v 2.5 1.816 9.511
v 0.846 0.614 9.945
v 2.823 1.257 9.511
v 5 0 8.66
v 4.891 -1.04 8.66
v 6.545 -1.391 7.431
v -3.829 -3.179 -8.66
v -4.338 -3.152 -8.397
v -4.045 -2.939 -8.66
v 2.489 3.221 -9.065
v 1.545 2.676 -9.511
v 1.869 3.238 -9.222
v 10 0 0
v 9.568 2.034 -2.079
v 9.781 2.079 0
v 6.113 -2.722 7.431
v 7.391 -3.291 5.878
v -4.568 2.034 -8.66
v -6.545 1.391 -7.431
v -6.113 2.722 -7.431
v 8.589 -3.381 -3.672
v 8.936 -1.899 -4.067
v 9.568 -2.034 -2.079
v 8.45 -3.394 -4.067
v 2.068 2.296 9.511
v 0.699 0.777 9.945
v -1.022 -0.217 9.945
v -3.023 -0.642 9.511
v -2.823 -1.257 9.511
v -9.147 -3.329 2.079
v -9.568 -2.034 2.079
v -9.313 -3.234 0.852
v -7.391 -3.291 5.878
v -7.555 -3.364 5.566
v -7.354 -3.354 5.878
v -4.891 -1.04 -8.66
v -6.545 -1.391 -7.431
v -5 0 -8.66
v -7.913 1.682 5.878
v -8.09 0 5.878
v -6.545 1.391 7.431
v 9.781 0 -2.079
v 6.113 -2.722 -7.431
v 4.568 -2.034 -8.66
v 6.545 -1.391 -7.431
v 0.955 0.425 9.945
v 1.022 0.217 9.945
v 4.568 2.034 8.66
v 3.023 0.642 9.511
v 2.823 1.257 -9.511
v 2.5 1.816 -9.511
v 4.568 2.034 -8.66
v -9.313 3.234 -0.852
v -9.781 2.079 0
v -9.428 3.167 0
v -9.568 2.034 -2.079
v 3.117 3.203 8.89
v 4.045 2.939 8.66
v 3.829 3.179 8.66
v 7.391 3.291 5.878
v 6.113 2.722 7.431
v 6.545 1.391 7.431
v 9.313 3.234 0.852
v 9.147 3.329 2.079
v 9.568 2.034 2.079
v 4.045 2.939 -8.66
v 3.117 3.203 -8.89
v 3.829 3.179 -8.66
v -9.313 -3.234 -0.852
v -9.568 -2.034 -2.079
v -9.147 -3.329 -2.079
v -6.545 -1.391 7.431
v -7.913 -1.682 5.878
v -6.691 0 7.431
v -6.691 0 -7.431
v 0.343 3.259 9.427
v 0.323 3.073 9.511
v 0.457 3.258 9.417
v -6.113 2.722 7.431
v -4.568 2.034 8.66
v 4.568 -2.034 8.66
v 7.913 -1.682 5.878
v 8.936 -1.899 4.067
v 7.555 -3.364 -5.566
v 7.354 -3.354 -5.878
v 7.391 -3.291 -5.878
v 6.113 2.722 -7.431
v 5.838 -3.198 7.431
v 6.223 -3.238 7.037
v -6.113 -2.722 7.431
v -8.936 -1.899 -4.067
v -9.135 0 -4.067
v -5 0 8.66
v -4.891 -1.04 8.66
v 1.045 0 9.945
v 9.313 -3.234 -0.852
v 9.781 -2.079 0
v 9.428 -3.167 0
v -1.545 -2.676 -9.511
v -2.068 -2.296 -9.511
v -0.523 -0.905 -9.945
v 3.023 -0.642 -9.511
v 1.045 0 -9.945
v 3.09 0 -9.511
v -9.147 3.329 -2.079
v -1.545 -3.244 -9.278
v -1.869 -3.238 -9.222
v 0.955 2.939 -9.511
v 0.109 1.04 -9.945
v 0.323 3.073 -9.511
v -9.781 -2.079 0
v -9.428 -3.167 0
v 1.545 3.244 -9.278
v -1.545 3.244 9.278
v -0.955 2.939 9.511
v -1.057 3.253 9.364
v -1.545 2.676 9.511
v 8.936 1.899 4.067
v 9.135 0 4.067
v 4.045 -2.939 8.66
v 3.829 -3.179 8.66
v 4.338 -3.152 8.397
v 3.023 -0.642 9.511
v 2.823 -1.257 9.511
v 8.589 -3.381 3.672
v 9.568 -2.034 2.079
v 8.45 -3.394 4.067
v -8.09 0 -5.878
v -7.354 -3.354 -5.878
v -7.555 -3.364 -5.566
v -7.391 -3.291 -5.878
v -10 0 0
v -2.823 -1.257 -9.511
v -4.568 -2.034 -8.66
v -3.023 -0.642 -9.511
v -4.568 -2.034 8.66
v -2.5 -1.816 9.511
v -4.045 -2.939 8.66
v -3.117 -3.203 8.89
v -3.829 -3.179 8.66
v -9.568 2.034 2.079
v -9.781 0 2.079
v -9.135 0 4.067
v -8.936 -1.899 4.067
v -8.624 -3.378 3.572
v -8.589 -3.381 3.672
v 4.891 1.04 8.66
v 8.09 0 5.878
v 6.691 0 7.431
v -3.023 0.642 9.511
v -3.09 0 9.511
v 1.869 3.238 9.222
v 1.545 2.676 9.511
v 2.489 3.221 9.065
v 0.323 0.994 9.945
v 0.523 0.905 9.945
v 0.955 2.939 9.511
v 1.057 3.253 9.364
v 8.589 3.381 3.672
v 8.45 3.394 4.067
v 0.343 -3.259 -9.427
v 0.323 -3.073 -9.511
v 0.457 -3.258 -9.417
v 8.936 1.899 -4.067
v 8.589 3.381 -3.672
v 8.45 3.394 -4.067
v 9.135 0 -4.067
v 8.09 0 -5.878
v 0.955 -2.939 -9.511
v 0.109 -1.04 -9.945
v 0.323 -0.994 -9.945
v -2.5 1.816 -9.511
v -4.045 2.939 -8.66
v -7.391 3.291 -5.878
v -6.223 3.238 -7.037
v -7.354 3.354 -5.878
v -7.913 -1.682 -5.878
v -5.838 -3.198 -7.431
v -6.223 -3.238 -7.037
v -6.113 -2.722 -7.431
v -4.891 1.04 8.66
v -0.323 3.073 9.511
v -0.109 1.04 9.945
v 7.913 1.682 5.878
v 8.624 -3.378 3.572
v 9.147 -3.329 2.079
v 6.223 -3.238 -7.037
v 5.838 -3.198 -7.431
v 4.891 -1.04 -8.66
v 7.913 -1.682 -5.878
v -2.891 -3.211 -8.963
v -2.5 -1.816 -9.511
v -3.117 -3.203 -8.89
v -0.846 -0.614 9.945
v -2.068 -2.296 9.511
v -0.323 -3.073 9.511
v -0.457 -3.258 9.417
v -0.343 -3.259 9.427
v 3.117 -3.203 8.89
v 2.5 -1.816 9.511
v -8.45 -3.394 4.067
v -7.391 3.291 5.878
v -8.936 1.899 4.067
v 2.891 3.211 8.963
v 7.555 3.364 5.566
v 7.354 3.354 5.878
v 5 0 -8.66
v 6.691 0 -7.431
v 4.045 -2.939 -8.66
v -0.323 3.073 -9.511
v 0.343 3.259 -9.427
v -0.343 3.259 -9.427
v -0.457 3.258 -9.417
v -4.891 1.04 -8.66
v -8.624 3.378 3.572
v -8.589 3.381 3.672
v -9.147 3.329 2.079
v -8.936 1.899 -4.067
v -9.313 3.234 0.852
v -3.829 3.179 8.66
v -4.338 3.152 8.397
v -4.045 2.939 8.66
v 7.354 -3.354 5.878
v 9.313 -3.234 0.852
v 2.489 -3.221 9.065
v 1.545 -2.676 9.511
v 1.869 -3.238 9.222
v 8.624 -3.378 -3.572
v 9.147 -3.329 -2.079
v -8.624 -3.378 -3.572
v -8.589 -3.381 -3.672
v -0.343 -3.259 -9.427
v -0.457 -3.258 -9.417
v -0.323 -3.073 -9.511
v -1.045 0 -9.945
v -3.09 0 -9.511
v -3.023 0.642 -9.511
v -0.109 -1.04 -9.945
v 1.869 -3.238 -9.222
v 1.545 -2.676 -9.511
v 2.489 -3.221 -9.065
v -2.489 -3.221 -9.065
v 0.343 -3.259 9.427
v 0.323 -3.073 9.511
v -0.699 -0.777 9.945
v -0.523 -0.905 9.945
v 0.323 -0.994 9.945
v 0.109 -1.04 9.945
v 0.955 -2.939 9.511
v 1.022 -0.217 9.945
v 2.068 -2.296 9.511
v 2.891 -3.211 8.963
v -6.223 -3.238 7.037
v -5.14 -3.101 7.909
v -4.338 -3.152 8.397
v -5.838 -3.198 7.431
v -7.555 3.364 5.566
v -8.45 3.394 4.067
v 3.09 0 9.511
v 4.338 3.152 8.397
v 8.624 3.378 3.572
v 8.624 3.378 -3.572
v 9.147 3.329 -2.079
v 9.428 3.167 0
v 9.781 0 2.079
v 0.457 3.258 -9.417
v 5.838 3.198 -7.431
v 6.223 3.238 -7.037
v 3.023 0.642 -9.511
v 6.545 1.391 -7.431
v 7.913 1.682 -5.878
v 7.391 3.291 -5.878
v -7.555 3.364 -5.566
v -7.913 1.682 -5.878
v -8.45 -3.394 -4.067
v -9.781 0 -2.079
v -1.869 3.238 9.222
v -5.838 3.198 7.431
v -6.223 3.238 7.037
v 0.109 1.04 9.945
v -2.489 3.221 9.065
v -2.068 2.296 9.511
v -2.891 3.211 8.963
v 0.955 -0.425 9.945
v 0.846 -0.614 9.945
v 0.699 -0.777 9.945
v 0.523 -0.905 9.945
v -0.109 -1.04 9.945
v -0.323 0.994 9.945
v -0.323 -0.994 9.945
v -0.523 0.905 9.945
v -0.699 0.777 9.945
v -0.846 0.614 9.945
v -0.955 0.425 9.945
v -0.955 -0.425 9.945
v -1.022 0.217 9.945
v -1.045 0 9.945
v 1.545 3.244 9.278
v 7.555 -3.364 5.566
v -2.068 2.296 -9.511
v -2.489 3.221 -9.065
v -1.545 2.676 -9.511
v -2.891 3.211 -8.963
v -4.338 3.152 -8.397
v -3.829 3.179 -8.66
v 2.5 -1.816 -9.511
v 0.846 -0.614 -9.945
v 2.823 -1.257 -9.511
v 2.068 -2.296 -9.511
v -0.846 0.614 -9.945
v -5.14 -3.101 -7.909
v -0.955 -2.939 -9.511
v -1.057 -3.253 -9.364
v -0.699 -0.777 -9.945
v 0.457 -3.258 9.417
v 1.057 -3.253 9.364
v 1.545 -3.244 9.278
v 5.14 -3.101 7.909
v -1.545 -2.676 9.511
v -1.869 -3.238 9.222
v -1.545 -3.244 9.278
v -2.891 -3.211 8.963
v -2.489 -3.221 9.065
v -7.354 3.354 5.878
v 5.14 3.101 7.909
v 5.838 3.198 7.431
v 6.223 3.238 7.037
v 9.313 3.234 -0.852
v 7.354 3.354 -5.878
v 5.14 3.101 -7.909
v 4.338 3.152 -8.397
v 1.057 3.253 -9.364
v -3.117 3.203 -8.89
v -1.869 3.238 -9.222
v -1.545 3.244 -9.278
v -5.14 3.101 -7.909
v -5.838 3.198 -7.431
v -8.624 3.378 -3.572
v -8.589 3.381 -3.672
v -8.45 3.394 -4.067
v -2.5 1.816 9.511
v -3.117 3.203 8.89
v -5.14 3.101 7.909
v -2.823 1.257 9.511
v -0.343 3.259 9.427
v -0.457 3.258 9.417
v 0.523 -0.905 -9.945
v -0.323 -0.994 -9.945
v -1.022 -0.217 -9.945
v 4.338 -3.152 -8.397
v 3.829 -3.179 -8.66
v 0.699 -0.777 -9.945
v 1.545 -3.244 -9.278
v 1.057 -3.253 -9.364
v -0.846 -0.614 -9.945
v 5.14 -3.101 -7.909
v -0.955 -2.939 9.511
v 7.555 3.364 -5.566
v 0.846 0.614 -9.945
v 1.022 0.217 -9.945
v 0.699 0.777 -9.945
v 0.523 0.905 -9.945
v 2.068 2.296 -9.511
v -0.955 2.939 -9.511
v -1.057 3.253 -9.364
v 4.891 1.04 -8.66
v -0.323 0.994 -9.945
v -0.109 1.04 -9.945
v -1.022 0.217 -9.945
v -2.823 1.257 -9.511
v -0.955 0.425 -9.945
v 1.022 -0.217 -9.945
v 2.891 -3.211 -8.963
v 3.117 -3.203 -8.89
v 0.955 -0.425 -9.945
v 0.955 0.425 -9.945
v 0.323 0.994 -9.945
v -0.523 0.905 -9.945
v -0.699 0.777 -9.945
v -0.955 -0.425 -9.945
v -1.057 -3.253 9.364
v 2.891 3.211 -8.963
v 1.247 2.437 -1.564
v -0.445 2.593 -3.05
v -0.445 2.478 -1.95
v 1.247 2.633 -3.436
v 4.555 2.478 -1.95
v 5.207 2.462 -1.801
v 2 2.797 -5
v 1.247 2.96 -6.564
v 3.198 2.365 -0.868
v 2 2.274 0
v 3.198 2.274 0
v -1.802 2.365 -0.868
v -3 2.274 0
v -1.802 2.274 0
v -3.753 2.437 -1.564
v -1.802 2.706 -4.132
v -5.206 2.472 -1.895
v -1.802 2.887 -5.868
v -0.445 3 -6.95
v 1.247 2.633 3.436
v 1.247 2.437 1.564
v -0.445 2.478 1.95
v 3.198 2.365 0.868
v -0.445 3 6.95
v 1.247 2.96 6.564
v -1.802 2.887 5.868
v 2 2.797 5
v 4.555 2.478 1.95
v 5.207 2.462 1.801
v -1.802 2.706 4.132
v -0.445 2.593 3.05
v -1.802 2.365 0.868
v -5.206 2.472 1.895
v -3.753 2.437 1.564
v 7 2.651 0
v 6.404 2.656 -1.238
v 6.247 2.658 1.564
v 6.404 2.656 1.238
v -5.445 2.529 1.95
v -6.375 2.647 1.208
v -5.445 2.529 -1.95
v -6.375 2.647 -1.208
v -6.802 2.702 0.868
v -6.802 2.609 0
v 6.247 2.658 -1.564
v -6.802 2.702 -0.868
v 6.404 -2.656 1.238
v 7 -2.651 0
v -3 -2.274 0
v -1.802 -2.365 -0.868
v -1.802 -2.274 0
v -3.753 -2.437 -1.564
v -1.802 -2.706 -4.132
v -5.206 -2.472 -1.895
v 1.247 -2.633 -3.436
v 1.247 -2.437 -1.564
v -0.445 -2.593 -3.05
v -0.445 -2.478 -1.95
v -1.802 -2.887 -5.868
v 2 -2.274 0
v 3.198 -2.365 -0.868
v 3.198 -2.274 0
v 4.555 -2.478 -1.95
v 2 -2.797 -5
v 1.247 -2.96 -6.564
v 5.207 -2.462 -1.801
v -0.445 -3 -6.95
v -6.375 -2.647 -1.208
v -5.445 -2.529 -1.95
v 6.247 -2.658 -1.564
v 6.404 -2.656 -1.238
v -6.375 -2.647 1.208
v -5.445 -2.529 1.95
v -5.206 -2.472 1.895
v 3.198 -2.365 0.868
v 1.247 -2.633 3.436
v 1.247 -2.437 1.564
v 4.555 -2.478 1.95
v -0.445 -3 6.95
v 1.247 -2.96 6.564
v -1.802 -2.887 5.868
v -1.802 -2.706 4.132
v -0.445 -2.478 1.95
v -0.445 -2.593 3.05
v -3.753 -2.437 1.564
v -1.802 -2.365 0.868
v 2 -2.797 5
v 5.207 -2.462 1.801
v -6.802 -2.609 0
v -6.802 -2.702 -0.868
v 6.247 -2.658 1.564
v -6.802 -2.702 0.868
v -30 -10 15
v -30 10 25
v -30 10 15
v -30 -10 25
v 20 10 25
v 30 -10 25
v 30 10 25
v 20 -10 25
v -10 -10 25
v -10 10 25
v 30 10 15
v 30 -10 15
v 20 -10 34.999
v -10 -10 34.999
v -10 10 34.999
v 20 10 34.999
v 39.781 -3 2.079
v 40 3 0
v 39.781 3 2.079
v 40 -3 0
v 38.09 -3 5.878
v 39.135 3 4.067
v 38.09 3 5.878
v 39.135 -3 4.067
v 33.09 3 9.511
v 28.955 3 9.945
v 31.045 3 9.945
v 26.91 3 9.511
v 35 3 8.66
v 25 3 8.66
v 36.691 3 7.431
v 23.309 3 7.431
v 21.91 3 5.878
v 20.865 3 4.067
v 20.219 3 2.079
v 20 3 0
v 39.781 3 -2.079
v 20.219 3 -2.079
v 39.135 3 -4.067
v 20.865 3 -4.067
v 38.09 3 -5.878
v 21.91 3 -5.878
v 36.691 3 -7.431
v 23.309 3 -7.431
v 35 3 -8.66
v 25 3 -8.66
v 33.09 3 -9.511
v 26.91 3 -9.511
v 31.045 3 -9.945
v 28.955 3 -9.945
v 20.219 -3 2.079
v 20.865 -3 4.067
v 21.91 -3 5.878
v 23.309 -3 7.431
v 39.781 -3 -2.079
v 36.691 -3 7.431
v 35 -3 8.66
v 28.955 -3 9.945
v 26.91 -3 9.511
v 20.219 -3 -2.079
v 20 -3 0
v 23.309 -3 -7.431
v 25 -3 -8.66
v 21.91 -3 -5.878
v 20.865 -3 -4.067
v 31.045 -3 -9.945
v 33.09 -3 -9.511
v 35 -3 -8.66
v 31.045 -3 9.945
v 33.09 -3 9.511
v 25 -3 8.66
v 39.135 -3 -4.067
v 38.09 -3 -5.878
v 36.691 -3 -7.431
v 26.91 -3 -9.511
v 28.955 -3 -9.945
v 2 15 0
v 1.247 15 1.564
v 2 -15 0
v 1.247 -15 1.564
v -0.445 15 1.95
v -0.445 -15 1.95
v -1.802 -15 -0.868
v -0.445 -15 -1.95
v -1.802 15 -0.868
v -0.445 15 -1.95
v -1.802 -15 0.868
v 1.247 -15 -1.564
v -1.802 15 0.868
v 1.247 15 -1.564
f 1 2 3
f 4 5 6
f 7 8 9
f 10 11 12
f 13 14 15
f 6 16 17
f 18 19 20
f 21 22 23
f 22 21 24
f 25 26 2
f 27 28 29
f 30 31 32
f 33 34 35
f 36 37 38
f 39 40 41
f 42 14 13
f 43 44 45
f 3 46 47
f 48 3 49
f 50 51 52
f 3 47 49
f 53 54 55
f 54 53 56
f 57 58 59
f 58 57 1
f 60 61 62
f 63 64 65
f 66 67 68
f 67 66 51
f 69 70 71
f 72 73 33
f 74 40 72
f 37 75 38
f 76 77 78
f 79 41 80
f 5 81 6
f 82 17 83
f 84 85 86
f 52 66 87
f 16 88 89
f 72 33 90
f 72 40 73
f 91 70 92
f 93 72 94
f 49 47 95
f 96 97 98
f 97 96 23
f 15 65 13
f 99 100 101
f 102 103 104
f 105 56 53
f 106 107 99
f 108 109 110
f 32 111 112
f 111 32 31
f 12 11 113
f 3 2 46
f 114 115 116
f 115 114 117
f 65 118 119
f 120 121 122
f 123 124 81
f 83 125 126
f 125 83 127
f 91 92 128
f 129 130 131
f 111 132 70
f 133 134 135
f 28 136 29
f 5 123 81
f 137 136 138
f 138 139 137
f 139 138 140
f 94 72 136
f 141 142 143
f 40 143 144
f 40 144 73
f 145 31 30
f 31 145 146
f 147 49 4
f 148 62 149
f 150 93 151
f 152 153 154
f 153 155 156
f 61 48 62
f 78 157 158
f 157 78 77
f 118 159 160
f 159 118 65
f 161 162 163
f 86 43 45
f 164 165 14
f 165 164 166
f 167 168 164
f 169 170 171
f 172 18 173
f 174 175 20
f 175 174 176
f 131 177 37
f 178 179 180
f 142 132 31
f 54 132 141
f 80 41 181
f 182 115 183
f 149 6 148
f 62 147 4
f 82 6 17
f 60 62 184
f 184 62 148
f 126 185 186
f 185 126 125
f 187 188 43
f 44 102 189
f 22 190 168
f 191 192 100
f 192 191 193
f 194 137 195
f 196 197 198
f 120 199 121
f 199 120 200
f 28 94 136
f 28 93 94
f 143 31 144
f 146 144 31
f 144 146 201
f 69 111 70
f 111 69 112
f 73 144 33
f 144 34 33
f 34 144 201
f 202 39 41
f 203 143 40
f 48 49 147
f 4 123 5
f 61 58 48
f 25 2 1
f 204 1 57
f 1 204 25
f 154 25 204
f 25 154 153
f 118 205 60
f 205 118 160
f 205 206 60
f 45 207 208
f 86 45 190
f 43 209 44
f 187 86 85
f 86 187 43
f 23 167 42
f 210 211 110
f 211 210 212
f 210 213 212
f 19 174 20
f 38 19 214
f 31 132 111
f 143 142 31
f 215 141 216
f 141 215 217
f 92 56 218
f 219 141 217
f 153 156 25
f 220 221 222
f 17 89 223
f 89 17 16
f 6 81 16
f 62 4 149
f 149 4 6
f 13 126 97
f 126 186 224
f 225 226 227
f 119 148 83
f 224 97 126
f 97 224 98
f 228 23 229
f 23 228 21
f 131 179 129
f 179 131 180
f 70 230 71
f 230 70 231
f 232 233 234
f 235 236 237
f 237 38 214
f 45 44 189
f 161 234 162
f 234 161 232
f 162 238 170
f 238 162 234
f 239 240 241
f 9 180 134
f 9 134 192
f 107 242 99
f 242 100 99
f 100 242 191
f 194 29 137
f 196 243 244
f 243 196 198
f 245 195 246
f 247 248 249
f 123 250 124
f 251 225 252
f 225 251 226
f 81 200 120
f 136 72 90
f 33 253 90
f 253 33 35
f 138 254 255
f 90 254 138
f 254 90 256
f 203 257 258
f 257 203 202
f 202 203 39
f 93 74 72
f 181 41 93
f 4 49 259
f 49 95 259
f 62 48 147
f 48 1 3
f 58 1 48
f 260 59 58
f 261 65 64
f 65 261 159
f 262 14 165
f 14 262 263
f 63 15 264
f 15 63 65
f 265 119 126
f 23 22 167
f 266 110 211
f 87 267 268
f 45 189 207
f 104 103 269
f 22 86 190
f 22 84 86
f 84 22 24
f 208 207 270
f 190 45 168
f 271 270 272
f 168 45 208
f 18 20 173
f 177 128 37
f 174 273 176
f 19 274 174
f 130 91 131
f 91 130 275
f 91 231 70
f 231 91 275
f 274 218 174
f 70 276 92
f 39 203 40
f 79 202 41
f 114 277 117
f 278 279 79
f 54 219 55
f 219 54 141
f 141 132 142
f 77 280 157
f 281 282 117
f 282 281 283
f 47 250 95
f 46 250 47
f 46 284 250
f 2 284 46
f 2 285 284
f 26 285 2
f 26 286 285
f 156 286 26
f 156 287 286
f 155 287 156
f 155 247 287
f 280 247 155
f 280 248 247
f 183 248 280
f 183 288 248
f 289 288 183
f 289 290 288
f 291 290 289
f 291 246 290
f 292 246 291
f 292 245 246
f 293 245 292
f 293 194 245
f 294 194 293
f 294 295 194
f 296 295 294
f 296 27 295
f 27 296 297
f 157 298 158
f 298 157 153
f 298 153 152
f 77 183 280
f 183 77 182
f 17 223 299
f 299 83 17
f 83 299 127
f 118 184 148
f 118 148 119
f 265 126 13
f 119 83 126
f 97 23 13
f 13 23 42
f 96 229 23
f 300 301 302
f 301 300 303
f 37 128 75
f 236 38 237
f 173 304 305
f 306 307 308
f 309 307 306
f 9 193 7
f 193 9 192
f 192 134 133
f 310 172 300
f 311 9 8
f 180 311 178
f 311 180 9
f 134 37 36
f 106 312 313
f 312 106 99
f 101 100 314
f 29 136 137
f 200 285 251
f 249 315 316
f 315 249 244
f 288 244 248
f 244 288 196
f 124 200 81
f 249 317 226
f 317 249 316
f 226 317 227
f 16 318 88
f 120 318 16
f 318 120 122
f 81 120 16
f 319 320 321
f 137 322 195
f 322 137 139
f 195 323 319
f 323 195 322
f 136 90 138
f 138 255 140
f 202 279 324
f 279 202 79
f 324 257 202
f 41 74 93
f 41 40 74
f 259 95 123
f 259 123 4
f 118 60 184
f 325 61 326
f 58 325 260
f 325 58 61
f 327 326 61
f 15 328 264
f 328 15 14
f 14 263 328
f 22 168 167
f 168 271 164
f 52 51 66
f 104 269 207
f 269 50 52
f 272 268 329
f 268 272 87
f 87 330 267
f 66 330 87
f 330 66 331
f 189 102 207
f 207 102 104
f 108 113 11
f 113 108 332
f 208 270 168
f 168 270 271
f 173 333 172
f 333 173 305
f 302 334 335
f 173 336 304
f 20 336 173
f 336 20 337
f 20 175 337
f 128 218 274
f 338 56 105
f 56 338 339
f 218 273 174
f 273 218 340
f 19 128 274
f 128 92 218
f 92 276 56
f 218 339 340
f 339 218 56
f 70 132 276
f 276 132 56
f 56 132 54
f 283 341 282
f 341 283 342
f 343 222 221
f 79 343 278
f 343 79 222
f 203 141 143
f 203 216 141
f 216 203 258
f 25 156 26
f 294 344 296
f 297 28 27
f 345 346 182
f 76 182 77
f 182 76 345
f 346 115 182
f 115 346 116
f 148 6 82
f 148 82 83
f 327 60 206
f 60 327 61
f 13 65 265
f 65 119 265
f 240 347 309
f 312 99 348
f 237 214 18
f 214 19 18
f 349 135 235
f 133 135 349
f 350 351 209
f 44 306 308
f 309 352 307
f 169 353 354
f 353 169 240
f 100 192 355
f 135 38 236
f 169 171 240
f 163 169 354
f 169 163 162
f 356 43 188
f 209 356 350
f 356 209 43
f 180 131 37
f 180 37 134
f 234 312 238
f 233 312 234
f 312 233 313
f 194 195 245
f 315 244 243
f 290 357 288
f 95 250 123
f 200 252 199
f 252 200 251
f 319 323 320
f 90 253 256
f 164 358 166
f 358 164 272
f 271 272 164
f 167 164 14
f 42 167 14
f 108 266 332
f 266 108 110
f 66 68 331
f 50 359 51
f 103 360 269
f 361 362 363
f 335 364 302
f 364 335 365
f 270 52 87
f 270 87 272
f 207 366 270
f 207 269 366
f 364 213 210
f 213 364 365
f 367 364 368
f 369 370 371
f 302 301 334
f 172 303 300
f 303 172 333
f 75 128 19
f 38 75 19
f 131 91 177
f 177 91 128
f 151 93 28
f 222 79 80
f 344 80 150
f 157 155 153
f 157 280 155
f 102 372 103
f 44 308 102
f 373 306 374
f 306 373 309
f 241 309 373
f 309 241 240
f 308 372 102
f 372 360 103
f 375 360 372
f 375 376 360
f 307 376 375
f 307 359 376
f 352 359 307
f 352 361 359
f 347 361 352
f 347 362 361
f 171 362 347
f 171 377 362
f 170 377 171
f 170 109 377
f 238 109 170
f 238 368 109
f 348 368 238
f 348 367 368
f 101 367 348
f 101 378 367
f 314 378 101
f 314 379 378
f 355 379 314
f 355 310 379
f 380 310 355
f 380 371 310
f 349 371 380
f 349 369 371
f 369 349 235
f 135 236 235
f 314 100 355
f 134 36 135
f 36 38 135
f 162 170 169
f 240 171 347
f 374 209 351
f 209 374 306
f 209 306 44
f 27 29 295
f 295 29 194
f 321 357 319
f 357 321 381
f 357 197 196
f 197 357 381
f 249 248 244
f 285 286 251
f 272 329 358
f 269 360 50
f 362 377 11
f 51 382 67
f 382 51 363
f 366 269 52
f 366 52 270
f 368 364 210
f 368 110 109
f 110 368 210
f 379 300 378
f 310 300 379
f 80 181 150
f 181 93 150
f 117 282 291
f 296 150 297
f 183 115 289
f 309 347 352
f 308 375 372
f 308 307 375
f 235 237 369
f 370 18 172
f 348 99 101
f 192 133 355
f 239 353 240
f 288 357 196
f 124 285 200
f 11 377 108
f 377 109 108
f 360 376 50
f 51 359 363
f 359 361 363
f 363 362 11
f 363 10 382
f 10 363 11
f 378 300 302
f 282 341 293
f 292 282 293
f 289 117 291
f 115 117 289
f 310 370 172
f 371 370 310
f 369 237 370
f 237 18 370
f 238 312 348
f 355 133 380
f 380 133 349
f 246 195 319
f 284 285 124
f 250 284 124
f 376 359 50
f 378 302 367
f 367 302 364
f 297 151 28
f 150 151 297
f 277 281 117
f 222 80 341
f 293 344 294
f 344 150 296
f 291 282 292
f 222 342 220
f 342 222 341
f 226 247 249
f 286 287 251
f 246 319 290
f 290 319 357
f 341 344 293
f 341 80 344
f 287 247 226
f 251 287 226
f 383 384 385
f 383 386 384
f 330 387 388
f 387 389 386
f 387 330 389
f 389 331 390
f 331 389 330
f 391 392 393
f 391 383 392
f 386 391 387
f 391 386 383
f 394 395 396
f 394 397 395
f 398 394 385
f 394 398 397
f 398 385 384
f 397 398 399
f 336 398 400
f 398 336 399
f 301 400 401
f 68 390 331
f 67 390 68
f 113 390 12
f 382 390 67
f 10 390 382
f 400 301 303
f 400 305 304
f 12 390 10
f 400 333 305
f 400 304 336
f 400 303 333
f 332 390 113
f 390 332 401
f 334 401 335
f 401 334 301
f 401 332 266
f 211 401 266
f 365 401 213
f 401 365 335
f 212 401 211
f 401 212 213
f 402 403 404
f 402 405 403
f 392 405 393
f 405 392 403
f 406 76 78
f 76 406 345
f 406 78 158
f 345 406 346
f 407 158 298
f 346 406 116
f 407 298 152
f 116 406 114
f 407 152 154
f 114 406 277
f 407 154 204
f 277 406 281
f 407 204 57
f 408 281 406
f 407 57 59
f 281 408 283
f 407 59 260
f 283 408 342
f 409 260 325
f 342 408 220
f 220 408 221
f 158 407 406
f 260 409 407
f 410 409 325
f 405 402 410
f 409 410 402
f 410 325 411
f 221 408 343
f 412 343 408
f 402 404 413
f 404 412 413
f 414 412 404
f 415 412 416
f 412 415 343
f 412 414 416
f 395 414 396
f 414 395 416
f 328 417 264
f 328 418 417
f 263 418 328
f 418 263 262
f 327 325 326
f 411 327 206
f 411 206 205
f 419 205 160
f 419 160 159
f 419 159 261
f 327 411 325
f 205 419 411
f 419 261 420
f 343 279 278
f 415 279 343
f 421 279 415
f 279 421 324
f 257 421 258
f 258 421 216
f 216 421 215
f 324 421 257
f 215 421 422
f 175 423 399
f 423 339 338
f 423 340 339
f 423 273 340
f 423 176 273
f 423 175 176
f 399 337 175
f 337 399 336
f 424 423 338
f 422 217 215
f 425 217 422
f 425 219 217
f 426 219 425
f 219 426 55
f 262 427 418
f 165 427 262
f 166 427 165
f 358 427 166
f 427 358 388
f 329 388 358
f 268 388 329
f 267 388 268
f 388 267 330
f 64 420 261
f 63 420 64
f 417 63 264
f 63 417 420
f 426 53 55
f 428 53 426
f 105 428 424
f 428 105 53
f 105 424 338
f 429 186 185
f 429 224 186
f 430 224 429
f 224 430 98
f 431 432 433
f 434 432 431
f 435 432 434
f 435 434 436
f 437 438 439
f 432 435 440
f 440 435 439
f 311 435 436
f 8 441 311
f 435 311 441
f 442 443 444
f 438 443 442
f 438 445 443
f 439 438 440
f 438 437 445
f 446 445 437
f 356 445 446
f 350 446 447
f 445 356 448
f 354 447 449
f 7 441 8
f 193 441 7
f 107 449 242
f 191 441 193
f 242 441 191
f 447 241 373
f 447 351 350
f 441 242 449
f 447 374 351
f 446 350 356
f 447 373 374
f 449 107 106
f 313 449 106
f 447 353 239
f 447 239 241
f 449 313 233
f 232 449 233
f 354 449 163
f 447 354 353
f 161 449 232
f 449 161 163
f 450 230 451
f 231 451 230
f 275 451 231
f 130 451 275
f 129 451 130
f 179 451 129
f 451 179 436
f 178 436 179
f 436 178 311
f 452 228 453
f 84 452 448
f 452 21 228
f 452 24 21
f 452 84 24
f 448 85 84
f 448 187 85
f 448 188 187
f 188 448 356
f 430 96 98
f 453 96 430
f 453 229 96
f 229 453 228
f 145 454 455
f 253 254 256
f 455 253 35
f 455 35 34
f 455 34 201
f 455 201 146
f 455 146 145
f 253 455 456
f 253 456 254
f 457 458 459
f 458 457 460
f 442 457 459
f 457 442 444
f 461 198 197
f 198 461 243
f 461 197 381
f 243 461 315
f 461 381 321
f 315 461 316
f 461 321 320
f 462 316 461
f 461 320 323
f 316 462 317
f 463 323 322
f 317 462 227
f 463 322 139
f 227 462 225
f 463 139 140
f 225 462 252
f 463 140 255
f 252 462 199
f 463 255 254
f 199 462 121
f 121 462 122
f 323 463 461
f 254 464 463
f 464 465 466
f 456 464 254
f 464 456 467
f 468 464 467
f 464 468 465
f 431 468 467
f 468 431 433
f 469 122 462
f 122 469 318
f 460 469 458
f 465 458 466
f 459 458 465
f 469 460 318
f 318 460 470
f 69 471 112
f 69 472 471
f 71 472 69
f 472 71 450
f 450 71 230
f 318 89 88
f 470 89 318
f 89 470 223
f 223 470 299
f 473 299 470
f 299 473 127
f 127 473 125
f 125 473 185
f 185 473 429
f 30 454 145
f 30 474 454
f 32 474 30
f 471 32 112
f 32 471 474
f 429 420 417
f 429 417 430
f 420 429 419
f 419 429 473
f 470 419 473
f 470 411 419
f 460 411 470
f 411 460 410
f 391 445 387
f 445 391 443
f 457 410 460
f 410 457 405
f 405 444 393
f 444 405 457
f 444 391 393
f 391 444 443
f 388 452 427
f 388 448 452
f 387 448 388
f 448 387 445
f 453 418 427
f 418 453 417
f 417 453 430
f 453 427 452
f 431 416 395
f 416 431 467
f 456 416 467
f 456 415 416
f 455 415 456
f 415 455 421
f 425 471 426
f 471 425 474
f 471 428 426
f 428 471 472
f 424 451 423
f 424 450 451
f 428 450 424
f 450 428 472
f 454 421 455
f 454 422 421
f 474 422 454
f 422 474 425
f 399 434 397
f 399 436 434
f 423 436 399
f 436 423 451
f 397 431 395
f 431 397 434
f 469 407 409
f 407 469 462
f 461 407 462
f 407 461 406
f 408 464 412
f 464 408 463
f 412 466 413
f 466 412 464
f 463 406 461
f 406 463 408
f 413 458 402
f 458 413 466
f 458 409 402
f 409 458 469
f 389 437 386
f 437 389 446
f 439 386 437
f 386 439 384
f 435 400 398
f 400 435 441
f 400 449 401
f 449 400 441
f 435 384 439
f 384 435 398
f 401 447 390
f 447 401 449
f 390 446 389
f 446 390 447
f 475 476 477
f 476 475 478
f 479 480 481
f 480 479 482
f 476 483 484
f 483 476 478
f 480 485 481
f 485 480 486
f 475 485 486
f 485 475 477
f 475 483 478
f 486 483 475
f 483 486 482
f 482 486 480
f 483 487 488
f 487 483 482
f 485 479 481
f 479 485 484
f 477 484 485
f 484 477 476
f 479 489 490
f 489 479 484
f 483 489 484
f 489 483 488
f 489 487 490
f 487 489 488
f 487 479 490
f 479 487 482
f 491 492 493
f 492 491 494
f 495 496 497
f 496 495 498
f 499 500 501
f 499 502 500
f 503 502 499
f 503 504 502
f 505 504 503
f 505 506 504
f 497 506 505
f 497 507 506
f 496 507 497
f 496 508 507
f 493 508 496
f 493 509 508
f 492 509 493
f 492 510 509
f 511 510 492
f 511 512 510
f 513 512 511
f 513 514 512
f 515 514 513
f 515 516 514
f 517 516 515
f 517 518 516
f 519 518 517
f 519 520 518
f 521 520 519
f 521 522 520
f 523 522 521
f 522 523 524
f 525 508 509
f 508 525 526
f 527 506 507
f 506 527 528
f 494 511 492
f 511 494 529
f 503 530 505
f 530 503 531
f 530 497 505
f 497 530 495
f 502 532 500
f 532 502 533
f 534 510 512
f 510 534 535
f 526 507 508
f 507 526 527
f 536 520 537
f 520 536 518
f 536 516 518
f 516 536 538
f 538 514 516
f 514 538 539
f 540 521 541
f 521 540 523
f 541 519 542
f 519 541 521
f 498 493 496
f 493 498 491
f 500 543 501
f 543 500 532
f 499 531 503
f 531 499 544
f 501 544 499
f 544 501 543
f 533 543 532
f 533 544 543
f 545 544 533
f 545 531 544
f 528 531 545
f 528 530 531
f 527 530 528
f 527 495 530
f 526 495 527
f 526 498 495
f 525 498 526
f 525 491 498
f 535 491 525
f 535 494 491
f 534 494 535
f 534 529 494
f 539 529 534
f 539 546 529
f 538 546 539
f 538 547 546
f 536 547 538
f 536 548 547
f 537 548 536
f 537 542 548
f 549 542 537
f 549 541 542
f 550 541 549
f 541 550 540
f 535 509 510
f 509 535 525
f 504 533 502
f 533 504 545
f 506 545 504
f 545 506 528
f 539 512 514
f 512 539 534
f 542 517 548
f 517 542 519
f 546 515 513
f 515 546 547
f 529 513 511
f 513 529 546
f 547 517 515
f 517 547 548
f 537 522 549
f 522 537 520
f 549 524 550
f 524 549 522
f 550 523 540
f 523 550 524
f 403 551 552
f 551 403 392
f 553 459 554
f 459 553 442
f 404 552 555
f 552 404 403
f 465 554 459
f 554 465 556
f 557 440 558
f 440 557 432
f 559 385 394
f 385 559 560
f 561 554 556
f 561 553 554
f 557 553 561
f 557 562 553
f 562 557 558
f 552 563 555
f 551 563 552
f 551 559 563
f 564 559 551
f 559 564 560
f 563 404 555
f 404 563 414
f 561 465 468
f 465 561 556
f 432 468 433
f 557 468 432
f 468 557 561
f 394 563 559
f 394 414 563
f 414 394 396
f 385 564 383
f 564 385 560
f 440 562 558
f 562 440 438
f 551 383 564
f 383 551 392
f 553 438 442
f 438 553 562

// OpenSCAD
//$fa=1;
//$fs=0.4;

base_height = 10;
top_height = 10;

module simple_wheel(wheel_radius=10, wheel_width=6) {
    rotate([90,0,0])
        cylinder(h=wheel_width,r=wheel_radius,center=true);
    }
translate([30,0,0])
    simple_wheel();

module complex_wheel(wheel_radius=10, side_spheres_radius=50, hub_thickness=4, cylinder_radius=2) {
    cylinder_height=2 * wheel_radius;
    difference() {
        // Wheel sphere
       sphere(r=wheel_radius);
        // Side wheel 1
        translate([0,side_spheres_radius + hub_thickness/2, 0])
            sphere(r=side_spheres_radius);
        // Side wheel 2
        translate([0,-(side_spheres_radius + hub_thickness/2), 0])
            sphere(r=side_spheres_radius);
        //Cylinder 1
        translate([wheel_radius/2, 0, 0])
            rotate([90,0,0])
                cylinder(h=cylinder_height, r=cylinder_radius, center=true);
        //Cylinder 2
        translate([-wheel_radius/2, 0, 0])
            rotate([90,0,0])
                cylinder(h=cylinder_height, r=cylinder_radius, center=true);
        //Cylinder 1
        translate([0,0,wheel_radius/2])
            rotate([90,0,0])
                cylinder(h=cylinder_height, r=cylinder_radius, center=true);
        //Cylinder 1
        translate([0,0,-wheel_radius/2])
            rotate([90,0,0])
                cylinder(h=cylinder_height, r=cylinder_radius, center=true);
    }
}
complex_wheel();

module body(base_length=60, top_length=30, top_offset=base_height/2+top_height/2-0.001) {
    // Car body base
    cube([base_length,20,base_height],center=true);

    // Car body top
    translate([5,0,top_offset])
        cube([top_length,20,top_height],center=true);
}

translate([0,0,20])
    body();

module axle(track=30) {
    rotate([90,0,0])
        cylinder(h=track,r=2,center=true);
}

axle();
